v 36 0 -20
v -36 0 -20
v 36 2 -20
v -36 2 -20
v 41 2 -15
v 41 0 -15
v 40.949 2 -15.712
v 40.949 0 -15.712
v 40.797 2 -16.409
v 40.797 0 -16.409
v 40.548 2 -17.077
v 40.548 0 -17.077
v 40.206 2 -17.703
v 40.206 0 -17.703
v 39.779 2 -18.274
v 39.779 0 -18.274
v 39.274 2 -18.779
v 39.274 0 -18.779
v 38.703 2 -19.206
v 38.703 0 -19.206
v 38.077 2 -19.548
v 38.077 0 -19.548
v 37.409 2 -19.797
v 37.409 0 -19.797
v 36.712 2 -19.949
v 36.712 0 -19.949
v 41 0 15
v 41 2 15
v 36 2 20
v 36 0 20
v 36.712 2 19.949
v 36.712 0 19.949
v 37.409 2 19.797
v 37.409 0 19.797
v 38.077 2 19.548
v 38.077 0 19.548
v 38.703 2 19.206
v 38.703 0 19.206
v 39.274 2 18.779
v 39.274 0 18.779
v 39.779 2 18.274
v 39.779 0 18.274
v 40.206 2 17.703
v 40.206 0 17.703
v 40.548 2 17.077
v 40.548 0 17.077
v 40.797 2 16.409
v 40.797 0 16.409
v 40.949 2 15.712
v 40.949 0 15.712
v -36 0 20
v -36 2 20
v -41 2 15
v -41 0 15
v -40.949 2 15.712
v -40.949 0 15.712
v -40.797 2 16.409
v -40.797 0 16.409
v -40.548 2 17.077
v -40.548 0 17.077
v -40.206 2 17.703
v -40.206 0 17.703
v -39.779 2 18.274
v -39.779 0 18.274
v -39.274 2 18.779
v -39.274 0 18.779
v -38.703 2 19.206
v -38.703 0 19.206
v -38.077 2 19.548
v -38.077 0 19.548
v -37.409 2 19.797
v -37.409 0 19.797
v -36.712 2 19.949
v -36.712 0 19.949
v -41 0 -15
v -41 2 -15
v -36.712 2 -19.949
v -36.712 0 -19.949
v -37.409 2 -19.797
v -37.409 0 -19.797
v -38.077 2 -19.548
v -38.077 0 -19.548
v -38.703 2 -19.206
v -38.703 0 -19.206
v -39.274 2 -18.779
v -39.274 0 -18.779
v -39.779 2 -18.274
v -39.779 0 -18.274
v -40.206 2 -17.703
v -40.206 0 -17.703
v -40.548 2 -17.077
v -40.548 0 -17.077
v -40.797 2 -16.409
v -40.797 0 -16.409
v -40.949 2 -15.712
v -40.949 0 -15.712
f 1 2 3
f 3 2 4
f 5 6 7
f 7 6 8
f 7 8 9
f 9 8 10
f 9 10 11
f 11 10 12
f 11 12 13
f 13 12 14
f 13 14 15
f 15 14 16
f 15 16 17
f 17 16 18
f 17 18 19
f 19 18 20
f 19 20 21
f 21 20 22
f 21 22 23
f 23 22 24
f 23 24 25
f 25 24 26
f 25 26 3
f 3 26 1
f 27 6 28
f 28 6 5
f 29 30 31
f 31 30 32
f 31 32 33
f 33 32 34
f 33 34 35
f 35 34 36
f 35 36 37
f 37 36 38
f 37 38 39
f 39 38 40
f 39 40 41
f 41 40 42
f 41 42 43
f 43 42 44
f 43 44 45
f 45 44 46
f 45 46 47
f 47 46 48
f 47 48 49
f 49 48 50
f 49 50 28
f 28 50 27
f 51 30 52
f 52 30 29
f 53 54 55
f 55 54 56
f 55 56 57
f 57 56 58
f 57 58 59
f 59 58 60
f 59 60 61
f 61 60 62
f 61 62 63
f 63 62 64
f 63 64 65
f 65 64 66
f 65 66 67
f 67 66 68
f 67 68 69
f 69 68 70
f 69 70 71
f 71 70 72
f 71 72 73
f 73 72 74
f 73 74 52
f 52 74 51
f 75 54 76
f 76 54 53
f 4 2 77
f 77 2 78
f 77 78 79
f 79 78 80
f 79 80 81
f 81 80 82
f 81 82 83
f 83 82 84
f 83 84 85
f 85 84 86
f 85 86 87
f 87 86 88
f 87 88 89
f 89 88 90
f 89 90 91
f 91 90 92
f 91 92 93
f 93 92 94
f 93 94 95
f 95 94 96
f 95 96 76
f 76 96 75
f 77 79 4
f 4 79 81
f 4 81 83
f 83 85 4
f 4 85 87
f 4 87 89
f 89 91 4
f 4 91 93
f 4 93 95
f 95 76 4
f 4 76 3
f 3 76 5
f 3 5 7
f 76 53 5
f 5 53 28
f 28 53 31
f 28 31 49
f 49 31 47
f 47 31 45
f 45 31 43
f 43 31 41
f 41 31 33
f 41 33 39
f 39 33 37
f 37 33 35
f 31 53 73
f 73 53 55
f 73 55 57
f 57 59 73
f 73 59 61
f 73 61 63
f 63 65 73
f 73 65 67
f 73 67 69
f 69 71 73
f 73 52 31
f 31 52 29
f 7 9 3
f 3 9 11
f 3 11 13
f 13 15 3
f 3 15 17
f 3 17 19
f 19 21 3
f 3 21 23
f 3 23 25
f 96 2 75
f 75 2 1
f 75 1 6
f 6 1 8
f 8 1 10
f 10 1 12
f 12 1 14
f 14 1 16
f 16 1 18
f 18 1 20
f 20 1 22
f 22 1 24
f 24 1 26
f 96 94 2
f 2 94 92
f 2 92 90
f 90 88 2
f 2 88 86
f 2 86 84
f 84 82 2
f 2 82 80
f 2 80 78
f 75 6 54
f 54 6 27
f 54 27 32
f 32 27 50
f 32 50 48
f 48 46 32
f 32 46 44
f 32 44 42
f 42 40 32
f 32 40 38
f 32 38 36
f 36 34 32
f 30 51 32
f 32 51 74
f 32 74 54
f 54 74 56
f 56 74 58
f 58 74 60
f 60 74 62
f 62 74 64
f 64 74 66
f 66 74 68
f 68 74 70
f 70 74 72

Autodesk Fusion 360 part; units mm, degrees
sketch "スケッチ1" plane through (0, 0, 0) normal (0, 1, 0) x (1, 0, 0)
  line L0 (-41, 15) -> (-41, -15)
  line L1 (-36, 20) -> (36, 20)
  line L2 (41, 15) -> (41, -15)
  line L3 (-36, -20) -> (36, -20)
  arc A0 (-41, -15) -> (-36, -20) centre (-36, -15) ccw
  arc A1 (-36, 20) -> (-41, 15) centre (-36, 15) ccw
  arc A2 (41, 15) -> (36, 20) centre (36, 15) ccw
  arc A3 (36, -20) -> (41, -15) centre (36, -15) ccw
  dimension "d1" = 30
  dimension "d2" = 72
extrude "押し出し1" add sketch "スケッチ1" along normal blind 2
